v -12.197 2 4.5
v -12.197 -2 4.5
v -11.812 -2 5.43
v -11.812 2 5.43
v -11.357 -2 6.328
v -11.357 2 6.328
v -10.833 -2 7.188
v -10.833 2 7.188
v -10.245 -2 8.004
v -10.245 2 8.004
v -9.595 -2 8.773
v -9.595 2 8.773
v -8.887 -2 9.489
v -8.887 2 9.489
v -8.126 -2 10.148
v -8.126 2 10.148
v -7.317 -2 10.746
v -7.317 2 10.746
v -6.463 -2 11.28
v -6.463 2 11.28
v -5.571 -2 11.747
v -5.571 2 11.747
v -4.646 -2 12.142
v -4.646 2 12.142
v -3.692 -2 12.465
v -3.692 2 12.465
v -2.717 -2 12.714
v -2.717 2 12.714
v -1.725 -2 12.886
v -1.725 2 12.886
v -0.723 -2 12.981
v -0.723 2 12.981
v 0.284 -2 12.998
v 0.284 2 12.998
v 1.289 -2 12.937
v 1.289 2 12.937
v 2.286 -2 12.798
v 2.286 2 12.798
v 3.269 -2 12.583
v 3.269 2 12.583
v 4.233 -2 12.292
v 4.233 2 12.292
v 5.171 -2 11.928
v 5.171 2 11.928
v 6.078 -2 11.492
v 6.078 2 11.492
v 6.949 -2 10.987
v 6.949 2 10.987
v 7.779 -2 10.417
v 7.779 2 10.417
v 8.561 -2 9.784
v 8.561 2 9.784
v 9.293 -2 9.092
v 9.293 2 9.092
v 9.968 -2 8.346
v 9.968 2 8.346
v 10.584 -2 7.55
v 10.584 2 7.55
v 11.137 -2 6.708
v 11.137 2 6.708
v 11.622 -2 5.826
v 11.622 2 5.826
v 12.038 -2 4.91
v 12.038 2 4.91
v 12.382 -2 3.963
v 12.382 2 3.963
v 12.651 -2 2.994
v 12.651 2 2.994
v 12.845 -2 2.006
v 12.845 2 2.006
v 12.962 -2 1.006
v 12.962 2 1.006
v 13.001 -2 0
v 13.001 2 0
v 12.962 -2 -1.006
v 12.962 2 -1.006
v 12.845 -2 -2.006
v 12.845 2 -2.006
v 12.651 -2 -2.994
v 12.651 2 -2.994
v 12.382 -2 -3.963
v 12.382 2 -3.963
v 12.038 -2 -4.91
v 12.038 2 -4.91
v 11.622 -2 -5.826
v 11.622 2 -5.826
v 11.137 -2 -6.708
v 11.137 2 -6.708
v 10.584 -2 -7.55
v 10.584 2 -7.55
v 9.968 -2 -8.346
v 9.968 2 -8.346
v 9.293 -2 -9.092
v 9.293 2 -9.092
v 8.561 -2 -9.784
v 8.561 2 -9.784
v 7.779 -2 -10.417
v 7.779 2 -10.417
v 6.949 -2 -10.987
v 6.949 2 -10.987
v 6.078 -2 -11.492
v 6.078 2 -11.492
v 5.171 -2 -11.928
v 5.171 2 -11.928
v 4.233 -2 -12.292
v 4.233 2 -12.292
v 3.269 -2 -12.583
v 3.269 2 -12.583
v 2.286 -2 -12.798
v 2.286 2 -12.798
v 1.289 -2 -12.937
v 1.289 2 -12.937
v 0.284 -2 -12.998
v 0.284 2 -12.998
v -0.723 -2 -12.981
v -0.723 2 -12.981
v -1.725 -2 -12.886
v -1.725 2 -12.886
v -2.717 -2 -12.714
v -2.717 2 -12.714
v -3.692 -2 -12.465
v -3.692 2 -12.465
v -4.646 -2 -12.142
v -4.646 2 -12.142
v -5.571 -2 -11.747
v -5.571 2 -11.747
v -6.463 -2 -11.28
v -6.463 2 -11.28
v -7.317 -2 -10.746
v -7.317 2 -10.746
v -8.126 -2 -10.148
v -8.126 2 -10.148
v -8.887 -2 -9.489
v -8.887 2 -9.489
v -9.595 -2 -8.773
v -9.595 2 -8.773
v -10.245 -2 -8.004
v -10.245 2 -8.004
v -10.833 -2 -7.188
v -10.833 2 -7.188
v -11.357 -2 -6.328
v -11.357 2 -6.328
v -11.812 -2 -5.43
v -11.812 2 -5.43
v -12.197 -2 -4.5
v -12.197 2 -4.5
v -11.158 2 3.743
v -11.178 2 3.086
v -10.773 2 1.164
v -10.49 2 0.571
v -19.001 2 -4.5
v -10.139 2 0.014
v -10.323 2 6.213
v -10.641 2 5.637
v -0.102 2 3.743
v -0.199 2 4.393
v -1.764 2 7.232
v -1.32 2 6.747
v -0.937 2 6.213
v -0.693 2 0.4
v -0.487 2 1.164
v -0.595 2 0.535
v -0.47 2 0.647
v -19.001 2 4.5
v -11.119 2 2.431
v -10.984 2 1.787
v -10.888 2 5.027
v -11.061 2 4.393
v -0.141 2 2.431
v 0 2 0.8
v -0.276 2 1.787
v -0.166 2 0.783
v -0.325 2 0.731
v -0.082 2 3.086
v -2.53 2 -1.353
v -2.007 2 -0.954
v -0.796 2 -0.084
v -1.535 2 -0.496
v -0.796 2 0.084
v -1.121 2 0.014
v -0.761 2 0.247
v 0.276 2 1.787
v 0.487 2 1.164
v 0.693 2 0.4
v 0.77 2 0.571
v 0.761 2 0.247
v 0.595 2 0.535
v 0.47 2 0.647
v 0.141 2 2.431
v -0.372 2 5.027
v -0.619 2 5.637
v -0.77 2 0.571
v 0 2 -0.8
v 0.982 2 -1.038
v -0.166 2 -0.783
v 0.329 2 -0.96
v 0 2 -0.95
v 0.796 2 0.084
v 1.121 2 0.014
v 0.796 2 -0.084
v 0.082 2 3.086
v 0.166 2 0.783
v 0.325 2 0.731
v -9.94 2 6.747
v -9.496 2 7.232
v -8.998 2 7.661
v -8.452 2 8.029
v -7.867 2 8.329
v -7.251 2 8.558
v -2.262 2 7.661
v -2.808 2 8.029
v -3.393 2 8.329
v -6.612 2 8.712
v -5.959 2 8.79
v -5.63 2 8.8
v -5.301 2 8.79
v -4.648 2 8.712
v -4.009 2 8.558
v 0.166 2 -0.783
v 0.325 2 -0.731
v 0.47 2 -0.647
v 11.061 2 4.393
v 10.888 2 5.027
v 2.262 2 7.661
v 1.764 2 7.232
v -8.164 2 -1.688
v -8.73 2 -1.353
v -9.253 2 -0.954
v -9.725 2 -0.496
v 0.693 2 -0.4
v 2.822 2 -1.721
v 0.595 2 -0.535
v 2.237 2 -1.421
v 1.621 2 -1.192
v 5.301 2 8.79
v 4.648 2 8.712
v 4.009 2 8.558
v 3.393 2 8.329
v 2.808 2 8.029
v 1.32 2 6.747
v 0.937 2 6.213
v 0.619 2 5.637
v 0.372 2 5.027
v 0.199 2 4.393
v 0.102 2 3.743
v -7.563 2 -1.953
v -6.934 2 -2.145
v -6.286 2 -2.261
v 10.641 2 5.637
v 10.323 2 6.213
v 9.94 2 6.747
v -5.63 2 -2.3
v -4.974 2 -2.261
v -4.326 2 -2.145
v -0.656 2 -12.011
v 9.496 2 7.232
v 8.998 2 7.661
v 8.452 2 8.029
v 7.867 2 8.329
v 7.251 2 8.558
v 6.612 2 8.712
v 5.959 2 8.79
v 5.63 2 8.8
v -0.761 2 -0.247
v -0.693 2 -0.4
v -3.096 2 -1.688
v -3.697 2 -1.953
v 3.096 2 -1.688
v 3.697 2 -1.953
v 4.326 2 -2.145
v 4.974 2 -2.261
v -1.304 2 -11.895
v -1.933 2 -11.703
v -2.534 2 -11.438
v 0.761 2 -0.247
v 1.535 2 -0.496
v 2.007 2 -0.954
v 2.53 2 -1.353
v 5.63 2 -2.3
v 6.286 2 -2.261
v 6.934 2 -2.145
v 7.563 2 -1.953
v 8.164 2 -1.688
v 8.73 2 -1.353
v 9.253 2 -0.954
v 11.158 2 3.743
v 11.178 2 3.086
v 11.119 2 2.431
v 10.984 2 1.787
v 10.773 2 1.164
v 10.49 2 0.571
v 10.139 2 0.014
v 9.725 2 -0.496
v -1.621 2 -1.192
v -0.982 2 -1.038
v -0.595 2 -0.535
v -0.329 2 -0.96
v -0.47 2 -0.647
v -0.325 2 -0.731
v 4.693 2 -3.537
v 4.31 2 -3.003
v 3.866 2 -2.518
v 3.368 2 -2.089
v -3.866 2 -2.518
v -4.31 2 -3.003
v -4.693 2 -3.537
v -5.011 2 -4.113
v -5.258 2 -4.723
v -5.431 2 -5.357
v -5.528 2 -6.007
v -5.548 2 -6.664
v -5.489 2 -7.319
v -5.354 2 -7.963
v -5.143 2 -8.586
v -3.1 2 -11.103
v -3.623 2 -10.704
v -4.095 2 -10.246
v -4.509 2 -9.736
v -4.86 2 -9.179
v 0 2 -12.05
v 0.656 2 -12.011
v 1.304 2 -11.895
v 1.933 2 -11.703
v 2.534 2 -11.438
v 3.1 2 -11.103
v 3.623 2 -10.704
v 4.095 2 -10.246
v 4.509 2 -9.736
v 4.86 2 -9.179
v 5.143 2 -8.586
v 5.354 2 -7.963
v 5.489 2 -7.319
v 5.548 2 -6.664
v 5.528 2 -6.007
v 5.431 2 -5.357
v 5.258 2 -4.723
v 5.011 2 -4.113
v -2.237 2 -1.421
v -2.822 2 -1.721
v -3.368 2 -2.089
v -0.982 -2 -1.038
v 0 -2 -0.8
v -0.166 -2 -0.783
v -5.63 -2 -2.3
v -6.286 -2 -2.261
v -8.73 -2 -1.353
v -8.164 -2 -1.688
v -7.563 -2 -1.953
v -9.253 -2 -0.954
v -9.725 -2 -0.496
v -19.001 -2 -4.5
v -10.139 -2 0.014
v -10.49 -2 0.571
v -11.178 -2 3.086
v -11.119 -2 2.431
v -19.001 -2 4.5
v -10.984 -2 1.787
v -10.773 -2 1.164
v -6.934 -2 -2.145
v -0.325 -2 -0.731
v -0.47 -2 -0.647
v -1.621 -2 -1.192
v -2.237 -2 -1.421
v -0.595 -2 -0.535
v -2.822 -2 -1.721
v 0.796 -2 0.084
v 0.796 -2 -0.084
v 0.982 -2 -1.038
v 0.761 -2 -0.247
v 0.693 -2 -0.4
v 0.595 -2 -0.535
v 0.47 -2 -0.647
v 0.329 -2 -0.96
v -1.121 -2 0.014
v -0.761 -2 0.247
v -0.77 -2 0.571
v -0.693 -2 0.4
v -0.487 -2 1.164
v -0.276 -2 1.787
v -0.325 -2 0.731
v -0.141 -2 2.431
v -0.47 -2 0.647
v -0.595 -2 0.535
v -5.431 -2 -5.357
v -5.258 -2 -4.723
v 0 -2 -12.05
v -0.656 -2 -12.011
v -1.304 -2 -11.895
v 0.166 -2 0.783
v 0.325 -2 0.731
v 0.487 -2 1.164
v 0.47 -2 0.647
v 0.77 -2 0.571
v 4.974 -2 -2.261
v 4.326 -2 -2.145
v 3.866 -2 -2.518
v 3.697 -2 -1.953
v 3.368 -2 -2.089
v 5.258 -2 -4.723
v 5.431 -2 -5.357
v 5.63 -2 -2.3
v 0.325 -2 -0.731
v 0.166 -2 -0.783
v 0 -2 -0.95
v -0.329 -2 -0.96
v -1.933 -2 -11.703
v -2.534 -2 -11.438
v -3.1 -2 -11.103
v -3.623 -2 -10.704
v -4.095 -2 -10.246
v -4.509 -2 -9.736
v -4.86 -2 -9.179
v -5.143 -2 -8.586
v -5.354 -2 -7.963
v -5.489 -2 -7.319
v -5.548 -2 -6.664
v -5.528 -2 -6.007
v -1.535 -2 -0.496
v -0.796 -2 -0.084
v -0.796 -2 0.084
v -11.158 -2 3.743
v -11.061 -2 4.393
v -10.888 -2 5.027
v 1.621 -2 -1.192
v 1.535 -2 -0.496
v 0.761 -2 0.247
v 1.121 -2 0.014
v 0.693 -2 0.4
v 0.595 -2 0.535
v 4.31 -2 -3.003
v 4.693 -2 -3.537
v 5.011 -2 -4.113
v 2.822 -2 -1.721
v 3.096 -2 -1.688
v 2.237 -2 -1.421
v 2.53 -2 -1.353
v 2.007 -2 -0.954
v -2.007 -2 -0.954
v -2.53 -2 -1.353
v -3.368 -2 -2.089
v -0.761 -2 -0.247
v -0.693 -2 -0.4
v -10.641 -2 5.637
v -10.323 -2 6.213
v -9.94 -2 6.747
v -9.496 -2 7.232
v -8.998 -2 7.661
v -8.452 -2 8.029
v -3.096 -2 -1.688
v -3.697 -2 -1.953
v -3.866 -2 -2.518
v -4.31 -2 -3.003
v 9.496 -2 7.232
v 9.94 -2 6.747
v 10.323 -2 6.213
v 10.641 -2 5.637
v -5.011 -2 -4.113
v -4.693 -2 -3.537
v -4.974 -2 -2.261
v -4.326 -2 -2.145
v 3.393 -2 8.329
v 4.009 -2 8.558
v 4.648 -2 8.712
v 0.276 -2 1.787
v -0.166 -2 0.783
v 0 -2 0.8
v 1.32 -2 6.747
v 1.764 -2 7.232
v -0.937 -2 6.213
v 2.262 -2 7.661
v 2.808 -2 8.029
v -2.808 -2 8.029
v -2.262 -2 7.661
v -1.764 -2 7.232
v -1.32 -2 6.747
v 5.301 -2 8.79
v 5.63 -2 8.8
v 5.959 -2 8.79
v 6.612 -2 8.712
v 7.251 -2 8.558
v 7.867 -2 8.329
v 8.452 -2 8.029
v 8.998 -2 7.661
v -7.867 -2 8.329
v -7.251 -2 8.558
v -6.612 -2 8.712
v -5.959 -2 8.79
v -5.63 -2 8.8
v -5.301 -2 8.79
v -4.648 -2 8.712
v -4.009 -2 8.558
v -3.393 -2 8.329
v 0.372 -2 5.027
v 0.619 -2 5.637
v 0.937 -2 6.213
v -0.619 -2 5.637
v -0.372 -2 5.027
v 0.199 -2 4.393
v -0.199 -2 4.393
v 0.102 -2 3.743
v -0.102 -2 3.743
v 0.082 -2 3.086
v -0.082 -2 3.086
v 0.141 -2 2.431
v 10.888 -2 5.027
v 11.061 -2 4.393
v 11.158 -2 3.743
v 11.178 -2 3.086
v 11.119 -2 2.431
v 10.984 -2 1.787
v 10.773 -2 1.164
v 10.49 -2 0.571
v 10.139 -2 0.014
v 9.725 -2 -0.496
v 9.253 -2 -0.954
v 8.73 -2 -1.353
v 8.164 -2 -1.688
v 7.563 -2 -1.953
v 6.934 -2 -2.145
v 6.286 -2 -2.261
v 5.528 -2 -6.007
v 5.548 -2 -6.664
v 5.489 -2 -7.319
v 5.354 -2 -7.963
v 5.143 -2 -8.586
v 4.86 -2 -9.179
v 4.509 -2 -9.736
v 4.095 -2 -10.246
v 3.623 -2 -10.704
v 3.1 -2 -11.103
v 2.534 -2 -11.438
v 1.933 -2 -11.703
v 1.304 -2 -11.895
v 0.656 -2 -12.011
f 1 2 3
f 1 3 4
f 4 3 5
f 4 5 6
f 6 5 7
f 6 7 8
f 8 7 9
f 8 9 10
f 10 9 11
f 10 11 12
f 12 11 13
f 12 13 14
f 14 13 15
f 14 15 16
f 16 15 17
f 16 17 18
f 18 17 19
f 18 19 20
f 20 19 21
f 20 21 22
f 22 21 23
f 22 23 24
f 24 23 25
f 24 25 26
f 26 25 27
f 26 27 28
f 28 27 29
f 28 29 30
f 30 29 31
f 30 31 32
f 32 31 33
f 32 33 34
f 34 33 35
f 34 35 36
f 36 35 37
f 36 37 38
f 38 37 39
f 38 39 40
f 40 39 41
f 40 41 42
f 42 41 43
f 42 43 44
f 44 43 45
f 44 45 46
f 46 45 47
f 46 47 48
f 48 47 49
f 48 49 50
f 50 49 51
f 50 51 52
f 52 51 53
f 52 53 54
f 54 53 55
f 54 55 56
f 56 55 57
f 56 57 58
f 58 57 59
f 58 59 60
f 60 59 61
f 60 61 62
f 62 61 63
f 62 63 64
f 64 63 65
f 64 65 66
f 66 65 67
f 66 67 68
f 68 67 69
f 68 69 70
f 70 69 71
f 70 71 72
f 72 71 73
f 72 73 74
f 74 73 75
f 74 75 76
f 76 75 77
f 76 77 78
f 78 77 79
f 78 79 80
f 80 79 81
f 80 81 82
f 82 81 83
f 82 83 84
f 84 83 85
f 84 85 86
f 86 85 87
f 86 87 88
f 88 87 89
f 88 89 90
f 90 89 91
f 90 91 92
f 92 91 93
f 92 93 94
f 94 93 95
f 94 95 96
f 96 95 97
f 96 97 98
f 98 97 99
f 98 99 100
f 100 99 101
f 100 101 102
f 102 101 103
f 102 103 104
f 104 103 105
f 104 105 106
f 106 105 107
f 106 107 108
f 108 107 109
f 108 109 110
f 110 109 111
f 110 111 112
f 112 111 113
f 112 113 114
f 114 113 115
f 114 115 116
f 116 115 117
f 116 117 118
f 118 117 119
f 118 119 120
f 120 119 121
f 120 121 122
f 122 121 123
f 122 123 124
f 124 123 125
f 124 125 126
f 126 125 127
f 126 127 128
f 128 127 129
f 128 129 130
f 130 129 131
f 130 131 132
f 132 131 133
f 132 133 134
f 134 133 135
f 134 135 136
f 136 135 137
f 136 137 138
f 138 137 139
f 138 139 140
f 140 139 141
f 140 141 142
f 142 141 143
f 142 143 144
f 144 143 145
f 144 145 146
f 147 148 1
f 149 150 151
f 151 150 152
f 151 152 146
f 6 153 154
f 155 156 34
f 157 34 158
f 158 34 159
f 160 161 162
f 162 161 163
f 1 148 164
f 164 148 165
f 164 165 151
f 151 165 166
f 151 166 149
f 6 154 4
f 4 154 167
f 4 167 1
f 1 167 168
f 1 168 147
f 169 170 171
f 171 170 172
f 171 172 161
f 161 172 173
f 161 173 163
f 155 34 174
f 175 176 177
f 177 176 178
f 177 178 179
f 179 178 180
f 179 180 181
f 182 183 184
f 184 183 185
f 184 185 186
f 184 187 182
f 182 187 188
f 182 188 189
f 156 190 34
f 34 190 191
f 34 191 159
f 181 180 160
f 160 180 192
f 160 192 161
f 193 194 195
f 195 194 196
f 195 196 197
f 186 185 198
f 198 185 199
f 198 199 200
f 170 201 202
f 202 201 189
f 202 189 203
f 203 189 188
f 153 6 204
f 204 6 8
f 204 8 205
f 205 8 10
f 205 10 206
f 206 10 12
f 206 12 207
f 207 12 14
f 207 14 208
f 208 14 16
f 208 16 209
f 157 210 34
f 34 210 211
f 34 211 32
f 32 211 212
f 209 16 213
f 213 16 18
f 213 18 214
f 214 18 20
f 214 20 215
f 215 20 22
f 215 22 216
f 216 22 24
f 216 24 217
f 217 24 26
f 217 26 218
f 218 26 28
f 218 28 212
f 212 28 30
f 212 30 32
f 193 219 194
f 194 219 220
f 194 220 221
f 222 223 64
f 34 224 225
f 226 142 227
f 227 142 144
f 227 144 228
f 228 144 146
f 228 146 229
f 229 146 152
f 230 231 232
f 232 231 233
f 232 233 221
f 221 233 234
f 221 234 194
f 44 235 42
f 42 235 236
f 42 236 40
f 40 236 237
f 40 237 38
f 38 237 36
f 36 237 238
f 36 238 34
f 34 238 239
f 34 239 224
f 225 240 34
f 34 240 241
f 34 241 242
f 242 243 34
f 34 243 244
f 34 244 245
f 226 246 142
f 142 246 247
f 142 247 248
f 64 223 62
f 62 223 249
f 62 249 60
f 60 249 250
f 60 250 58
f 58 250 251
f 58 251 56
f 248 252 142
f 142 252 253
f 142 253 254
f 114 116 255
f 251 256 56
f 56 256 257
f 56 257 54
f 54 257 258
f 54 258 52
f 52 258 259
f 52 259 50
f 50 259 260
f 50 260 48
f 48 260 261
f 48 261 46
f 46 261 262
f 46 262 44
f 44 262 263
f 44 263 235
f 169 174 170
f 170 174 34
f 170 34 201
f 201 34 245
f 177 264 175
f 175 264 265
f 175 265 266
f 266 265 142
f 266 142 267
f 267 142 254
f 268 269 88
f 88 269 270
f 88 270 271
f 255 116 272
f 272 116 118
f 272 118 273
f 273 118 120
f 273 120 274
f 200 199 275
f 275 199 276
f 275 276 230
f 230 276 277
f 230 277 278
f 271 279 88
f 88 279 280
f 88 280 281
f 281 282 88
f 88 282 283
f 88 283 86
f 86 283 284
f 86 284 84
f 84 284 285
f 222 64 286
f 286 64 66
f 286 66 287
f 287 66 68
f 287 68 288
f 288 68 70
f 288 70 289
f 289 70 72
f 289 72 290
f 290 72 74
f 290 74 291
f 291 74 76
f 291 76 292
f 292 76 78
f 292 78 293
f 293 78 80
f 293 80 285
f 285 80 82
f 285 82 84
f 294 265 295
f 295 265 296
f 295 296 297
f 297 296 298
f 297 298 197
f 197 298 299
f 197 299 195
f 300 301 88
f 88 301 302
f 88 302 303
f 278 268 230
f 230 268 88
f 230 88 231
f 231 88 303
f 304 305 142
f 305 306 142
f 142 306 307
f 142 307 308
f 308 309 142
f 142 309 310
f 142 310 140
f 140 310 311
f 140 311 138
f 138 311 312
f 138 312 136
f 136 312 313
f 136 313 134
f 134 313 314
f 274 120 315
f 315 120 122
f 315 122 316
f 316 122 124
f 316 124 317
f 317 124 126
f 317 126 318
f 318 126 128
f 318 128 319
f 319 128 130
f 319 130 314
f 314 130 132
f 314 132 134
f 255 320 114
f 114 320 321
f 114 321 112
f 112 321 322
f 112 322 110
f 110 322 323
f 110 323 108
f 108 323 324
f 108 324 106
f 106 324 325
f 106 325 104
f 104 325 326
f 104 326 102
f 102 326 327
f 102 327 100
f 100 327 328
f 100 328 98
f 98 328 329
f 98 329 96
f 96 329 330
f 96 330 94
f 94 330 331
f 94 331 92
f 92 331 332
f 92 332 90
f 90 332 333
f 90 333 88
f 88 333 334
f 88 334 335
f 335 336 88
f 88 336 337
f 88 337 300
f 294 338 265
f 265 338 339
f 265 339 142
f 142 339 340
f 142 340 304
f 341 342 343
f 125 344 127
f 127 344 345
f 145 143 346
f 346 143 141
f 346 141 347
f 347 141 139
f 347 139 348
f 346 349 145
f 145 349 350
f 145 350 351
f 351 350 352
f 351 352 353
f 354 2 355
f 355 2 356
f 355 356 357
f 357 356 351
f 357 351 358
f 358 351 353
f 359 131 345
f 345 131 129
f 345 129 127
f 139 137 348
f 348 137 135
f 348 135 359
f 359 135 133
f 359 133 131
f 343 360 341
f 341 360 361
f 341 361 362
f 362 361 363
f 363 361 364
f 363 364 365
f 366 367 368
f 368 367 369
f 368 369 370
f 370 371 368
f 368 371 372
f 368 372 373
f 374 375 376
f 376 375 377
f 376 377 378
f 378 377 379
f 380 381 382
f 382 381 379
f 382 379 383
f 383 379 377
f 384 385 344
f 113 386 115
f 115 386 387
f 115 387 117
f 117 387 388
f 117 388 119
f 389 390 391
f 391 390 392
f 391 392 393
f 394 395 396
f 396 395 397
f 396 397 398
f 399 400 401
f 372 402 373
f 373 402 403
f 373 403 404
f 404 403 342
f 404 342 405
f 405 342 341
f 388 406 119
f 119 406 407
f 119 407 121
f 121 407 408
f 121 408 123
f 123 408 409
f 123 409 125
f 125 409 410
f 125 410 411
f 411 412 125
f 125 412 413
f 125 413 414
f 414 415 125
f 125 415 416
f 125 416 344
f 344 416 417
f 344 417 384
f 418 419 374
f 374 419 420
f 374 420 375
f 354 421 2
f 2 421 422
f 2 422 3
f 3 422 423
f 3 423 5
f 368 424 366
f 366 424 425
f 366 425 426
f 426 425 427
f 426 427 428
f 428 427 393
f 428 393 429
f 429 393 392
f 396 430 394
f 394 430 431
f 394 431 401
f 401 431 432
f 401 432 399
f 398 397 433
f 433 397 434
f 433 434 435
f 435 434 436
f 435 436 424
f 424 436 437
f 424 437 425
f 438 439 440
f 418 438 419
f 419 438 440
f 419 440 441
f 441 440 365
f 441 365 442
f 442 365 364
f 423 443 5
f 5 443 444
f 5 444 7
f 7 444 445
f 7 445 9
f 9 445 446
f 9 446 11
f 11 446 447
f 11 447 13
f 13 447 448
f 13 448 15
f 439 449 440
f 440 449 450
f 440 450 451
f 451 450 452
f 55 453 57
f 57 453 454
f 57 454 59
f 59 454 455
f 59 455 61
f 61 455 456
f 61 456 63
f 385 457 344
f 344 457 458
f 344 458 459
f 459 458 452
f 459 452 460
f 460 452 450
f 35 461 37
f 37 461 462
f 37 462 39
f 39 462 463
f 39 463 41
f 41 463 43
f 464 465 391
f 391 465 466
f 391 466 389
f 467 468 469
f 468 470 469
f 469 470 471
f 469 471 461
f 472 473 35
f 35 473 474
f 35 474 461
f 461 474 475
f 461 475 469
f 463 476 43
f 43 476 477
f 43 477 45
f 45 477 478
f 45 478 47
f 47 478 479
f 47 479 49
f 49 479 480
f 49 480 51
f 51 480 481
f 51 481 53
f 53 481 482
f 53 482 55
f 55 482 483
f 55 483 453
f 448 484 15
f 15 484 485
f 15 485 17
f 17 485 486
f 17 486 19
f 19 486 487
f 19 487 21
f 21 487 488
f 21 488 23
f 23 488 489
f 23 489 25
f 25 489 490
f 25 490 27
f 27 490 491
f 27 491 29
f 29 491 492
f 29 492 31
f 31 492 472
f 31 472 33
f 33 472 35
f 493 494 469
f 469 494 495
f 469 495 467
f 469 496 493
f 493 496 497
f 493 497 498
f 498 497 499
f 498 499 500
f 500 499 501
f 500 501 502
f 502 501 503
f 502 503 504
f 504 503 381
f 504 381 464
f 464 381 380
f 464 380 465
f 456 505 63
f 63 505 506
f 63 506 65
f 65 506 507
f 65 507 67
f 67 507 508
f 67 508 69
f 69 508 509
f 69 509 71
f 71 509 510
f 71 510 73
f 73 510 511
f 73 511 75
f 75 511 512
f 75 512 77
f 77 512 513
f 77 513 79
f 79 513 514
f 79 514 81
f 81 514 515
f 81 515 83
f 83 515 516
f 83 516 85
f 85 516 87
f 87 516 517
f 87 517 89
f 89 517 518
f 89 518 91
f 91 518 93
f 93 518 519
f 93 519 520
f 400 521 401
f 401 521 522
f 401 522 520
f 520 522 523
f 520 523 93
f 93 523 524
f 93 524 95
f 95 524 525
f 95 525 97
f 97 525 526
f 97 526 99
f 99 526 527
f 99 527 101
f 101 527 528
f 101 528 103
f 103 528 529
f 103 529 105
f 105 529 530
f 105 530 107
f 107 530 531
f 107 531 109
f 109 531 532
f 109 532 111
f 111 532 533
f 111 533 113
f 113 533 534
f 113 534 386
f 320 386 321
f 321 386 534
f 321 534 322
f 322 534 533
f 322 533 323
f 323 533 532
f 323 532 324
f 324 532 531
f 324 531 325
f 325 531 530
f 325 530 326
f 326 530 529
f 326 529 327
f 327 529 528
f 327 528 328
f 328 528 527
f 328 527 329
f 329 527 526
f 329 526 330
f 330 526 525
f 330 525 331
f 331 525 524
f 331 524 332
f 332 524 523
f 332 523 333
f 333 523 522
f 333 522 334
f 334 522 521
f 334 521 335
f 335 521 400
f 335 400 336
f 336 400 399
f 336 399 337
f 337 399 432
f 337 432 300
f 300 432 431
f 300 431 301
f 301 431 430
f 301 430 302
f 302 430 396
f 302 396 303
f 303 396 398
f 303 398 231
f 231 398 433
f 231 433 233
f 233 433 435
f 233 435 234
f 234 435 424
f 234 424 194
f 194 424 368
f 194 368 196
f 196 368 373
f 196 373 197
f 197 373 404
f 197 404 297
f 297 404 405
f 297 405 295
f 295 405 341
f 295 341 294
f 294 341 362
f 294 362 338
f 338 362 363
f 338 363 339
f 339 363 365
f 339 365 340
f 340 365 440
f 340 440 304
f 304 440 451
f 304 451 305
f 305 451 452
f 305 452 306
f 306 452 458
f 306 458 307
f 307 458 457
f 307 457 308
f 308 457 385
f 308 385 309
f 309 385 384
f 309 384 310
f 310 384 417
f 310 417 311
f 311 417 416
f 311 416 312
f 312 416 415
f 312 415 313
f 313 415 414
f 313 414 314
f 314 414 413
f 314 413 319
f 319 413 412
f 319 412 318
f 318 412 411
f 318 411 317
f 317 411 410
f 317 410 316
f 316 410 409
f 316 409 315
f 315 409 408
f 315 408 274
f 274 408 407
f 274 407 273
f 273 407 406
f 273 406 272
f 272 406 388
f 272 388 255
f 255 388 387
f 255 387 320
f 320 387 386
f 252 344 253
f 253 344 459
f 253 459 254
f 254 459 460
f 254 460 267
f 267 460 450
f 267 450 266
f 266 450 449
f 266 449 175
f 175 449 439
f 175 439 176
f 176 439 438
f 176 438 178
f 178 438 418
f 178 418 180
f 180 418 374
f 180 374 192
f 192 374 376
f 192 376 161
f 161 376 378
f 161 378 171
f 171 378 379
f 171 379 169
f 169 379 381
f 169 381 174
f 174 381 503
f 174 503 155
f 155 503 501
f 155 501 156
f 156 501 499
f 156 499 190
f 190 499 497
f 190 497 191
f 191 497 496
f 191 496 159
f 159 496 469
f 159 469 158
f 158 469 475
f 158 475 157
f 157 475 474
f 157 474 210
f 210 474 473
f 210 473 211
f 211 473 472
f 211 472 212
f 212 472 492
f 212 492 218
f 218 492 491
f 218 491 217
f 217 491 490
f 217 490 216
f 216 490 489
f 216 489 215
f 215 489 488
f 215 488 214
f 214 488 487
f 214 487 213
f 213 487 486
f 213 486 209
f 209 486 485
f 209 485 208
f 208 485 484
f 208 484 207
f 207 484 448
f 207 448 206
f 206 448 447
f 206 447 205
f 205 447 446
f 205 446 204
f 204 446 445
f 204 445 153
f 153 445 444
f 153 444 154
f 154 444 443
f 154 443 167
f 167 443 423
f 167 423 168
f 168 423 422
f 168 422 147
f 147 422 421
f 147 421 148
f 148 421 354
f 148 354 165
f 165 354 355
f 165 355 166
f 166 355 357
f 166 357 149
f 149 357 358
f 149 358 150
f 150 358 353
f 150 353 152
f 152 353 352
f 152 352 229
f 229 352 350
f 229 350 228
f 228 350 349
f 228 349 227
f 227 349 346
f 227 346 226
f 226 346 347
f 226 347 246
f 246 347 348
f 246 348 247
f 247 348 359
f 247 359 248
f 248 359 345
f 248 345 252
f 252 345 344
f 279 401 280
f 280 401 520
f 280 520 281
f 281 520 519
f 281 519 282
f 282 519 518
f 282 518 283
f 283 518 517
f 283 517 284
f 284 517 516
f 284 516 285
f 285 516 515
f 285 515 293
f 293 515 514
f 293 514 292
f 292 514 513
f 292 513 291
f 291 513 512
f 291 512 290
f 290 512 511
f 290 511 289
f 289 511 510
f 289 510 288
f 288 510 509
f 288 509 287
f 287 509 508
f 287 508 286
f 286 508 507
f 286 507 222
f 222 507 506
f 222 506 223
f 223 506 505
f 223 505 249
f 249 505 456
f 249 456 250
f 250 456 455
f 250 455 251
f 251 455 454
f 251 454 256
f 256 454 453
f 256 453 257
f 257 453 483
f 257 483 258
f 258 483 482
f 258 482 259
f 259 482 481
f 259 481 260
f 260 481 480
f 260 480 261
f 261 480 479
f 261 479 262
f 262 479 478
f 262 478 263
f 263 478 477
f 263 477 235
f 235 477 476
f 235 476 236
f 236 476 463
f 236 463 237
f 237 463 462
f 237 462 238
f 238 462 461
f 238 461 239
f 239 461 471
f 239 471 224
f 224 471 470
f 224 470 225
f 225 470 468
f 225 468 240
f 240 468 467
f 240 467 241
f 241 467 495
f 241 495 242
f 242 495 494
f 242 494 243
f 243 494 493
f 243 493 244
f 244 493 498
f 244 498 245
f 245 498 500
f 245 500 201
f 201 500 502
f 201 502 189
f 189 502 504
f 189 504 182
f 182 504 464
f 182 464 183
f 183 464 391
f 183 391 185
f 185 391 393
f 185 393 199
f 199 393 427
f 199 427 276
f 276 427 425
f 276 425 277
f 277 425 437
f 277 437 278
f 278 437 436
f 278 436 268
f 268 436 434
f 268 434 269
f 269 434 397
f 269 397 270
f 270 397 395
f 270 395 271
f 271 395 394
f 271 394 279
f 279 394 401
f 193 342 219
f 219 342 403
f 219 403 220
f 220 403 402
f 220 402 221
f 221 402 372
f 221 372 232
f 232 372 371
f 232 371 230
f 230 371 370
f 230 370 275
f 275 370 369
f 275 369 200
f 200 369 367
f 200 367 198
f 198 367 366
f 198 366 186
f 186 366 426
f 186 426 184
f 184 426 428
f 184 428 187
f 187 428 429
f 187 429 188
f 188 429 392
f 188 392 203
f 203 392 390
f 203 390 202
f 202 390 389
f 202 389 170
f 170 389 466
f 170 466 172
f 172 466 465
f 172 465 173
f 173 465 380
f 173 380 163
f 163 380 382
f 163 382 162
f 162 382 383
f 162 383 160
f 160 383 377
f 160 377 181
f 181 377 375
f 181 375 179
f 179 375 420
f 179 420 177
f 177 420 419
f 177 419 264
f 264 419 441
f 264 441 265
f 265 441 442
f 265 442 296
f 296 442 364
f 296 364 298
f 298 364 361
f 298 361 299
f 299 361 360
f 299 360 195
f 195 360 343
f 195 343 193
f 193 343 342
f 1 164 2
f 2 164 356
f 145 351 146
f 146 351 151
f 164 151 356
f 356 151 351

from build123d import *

# Parameters (mm, degrees)
SKETCH1_R           = 13.000723037
SKETCH1_R_2         = 5.55
SKETCH1_R_3         = 0.8
PLACA_CABEZAL_DEPTH = 4
SKETCH2_W           = 7.5
SKETCH2_H           = 9
PATA_AL_HUESO_DEPTH = 4


with BuildPart() as part:
    # Sketch1 → Placa_cabezal (new body)
    with BuildSketch(Plane(origin=(0, -2, 0), x_dir=(1, 0, 0), z_dir=(0, 1, 0))):
        with Locations(Location((0, 0, 0), (0, 0, 270))):
            Circle(SKETCH1_R)
        with Locations(Location((0, 6.5, 0), (0, 0, 270))):
            Circle(SKETCH1_R_2, mode=Mode.SUBTRACT)
        with Locations(Location((-5.63, -3.25, 0), (0, 0, 270))):
            Circle(SKETCH1_R_2, mode=Mode.SUBTRACT)
        with Locations(Location((5.63, -3.25, 0), (0, 0, 270))):
            Circle(SKETCH1_R_2, mode=Mode.SUBTRACT)
        with Locations(Location((0, 0, 0), (0, 0, 270))):
            Circle(SKETCH1_R_3, mode=Mode.SUBTRACT)
    extrude(amount=PLACA_CABEZAL_DEPTH)

    # Sketch2 → Pata_al_hueso (add)
    with BuildSketch(Plane(origin=(0, -2, 0), x_dir=(1, 0, 0), z_dir=(0, 1, 0))):
        with Locations((-15.250723037, 0)):
            Rectangle(SKETCH2_W, SKETCH2_H)
    extrude(amount=PATA_AL_HUESO_DEPTH)


solid = part.part
